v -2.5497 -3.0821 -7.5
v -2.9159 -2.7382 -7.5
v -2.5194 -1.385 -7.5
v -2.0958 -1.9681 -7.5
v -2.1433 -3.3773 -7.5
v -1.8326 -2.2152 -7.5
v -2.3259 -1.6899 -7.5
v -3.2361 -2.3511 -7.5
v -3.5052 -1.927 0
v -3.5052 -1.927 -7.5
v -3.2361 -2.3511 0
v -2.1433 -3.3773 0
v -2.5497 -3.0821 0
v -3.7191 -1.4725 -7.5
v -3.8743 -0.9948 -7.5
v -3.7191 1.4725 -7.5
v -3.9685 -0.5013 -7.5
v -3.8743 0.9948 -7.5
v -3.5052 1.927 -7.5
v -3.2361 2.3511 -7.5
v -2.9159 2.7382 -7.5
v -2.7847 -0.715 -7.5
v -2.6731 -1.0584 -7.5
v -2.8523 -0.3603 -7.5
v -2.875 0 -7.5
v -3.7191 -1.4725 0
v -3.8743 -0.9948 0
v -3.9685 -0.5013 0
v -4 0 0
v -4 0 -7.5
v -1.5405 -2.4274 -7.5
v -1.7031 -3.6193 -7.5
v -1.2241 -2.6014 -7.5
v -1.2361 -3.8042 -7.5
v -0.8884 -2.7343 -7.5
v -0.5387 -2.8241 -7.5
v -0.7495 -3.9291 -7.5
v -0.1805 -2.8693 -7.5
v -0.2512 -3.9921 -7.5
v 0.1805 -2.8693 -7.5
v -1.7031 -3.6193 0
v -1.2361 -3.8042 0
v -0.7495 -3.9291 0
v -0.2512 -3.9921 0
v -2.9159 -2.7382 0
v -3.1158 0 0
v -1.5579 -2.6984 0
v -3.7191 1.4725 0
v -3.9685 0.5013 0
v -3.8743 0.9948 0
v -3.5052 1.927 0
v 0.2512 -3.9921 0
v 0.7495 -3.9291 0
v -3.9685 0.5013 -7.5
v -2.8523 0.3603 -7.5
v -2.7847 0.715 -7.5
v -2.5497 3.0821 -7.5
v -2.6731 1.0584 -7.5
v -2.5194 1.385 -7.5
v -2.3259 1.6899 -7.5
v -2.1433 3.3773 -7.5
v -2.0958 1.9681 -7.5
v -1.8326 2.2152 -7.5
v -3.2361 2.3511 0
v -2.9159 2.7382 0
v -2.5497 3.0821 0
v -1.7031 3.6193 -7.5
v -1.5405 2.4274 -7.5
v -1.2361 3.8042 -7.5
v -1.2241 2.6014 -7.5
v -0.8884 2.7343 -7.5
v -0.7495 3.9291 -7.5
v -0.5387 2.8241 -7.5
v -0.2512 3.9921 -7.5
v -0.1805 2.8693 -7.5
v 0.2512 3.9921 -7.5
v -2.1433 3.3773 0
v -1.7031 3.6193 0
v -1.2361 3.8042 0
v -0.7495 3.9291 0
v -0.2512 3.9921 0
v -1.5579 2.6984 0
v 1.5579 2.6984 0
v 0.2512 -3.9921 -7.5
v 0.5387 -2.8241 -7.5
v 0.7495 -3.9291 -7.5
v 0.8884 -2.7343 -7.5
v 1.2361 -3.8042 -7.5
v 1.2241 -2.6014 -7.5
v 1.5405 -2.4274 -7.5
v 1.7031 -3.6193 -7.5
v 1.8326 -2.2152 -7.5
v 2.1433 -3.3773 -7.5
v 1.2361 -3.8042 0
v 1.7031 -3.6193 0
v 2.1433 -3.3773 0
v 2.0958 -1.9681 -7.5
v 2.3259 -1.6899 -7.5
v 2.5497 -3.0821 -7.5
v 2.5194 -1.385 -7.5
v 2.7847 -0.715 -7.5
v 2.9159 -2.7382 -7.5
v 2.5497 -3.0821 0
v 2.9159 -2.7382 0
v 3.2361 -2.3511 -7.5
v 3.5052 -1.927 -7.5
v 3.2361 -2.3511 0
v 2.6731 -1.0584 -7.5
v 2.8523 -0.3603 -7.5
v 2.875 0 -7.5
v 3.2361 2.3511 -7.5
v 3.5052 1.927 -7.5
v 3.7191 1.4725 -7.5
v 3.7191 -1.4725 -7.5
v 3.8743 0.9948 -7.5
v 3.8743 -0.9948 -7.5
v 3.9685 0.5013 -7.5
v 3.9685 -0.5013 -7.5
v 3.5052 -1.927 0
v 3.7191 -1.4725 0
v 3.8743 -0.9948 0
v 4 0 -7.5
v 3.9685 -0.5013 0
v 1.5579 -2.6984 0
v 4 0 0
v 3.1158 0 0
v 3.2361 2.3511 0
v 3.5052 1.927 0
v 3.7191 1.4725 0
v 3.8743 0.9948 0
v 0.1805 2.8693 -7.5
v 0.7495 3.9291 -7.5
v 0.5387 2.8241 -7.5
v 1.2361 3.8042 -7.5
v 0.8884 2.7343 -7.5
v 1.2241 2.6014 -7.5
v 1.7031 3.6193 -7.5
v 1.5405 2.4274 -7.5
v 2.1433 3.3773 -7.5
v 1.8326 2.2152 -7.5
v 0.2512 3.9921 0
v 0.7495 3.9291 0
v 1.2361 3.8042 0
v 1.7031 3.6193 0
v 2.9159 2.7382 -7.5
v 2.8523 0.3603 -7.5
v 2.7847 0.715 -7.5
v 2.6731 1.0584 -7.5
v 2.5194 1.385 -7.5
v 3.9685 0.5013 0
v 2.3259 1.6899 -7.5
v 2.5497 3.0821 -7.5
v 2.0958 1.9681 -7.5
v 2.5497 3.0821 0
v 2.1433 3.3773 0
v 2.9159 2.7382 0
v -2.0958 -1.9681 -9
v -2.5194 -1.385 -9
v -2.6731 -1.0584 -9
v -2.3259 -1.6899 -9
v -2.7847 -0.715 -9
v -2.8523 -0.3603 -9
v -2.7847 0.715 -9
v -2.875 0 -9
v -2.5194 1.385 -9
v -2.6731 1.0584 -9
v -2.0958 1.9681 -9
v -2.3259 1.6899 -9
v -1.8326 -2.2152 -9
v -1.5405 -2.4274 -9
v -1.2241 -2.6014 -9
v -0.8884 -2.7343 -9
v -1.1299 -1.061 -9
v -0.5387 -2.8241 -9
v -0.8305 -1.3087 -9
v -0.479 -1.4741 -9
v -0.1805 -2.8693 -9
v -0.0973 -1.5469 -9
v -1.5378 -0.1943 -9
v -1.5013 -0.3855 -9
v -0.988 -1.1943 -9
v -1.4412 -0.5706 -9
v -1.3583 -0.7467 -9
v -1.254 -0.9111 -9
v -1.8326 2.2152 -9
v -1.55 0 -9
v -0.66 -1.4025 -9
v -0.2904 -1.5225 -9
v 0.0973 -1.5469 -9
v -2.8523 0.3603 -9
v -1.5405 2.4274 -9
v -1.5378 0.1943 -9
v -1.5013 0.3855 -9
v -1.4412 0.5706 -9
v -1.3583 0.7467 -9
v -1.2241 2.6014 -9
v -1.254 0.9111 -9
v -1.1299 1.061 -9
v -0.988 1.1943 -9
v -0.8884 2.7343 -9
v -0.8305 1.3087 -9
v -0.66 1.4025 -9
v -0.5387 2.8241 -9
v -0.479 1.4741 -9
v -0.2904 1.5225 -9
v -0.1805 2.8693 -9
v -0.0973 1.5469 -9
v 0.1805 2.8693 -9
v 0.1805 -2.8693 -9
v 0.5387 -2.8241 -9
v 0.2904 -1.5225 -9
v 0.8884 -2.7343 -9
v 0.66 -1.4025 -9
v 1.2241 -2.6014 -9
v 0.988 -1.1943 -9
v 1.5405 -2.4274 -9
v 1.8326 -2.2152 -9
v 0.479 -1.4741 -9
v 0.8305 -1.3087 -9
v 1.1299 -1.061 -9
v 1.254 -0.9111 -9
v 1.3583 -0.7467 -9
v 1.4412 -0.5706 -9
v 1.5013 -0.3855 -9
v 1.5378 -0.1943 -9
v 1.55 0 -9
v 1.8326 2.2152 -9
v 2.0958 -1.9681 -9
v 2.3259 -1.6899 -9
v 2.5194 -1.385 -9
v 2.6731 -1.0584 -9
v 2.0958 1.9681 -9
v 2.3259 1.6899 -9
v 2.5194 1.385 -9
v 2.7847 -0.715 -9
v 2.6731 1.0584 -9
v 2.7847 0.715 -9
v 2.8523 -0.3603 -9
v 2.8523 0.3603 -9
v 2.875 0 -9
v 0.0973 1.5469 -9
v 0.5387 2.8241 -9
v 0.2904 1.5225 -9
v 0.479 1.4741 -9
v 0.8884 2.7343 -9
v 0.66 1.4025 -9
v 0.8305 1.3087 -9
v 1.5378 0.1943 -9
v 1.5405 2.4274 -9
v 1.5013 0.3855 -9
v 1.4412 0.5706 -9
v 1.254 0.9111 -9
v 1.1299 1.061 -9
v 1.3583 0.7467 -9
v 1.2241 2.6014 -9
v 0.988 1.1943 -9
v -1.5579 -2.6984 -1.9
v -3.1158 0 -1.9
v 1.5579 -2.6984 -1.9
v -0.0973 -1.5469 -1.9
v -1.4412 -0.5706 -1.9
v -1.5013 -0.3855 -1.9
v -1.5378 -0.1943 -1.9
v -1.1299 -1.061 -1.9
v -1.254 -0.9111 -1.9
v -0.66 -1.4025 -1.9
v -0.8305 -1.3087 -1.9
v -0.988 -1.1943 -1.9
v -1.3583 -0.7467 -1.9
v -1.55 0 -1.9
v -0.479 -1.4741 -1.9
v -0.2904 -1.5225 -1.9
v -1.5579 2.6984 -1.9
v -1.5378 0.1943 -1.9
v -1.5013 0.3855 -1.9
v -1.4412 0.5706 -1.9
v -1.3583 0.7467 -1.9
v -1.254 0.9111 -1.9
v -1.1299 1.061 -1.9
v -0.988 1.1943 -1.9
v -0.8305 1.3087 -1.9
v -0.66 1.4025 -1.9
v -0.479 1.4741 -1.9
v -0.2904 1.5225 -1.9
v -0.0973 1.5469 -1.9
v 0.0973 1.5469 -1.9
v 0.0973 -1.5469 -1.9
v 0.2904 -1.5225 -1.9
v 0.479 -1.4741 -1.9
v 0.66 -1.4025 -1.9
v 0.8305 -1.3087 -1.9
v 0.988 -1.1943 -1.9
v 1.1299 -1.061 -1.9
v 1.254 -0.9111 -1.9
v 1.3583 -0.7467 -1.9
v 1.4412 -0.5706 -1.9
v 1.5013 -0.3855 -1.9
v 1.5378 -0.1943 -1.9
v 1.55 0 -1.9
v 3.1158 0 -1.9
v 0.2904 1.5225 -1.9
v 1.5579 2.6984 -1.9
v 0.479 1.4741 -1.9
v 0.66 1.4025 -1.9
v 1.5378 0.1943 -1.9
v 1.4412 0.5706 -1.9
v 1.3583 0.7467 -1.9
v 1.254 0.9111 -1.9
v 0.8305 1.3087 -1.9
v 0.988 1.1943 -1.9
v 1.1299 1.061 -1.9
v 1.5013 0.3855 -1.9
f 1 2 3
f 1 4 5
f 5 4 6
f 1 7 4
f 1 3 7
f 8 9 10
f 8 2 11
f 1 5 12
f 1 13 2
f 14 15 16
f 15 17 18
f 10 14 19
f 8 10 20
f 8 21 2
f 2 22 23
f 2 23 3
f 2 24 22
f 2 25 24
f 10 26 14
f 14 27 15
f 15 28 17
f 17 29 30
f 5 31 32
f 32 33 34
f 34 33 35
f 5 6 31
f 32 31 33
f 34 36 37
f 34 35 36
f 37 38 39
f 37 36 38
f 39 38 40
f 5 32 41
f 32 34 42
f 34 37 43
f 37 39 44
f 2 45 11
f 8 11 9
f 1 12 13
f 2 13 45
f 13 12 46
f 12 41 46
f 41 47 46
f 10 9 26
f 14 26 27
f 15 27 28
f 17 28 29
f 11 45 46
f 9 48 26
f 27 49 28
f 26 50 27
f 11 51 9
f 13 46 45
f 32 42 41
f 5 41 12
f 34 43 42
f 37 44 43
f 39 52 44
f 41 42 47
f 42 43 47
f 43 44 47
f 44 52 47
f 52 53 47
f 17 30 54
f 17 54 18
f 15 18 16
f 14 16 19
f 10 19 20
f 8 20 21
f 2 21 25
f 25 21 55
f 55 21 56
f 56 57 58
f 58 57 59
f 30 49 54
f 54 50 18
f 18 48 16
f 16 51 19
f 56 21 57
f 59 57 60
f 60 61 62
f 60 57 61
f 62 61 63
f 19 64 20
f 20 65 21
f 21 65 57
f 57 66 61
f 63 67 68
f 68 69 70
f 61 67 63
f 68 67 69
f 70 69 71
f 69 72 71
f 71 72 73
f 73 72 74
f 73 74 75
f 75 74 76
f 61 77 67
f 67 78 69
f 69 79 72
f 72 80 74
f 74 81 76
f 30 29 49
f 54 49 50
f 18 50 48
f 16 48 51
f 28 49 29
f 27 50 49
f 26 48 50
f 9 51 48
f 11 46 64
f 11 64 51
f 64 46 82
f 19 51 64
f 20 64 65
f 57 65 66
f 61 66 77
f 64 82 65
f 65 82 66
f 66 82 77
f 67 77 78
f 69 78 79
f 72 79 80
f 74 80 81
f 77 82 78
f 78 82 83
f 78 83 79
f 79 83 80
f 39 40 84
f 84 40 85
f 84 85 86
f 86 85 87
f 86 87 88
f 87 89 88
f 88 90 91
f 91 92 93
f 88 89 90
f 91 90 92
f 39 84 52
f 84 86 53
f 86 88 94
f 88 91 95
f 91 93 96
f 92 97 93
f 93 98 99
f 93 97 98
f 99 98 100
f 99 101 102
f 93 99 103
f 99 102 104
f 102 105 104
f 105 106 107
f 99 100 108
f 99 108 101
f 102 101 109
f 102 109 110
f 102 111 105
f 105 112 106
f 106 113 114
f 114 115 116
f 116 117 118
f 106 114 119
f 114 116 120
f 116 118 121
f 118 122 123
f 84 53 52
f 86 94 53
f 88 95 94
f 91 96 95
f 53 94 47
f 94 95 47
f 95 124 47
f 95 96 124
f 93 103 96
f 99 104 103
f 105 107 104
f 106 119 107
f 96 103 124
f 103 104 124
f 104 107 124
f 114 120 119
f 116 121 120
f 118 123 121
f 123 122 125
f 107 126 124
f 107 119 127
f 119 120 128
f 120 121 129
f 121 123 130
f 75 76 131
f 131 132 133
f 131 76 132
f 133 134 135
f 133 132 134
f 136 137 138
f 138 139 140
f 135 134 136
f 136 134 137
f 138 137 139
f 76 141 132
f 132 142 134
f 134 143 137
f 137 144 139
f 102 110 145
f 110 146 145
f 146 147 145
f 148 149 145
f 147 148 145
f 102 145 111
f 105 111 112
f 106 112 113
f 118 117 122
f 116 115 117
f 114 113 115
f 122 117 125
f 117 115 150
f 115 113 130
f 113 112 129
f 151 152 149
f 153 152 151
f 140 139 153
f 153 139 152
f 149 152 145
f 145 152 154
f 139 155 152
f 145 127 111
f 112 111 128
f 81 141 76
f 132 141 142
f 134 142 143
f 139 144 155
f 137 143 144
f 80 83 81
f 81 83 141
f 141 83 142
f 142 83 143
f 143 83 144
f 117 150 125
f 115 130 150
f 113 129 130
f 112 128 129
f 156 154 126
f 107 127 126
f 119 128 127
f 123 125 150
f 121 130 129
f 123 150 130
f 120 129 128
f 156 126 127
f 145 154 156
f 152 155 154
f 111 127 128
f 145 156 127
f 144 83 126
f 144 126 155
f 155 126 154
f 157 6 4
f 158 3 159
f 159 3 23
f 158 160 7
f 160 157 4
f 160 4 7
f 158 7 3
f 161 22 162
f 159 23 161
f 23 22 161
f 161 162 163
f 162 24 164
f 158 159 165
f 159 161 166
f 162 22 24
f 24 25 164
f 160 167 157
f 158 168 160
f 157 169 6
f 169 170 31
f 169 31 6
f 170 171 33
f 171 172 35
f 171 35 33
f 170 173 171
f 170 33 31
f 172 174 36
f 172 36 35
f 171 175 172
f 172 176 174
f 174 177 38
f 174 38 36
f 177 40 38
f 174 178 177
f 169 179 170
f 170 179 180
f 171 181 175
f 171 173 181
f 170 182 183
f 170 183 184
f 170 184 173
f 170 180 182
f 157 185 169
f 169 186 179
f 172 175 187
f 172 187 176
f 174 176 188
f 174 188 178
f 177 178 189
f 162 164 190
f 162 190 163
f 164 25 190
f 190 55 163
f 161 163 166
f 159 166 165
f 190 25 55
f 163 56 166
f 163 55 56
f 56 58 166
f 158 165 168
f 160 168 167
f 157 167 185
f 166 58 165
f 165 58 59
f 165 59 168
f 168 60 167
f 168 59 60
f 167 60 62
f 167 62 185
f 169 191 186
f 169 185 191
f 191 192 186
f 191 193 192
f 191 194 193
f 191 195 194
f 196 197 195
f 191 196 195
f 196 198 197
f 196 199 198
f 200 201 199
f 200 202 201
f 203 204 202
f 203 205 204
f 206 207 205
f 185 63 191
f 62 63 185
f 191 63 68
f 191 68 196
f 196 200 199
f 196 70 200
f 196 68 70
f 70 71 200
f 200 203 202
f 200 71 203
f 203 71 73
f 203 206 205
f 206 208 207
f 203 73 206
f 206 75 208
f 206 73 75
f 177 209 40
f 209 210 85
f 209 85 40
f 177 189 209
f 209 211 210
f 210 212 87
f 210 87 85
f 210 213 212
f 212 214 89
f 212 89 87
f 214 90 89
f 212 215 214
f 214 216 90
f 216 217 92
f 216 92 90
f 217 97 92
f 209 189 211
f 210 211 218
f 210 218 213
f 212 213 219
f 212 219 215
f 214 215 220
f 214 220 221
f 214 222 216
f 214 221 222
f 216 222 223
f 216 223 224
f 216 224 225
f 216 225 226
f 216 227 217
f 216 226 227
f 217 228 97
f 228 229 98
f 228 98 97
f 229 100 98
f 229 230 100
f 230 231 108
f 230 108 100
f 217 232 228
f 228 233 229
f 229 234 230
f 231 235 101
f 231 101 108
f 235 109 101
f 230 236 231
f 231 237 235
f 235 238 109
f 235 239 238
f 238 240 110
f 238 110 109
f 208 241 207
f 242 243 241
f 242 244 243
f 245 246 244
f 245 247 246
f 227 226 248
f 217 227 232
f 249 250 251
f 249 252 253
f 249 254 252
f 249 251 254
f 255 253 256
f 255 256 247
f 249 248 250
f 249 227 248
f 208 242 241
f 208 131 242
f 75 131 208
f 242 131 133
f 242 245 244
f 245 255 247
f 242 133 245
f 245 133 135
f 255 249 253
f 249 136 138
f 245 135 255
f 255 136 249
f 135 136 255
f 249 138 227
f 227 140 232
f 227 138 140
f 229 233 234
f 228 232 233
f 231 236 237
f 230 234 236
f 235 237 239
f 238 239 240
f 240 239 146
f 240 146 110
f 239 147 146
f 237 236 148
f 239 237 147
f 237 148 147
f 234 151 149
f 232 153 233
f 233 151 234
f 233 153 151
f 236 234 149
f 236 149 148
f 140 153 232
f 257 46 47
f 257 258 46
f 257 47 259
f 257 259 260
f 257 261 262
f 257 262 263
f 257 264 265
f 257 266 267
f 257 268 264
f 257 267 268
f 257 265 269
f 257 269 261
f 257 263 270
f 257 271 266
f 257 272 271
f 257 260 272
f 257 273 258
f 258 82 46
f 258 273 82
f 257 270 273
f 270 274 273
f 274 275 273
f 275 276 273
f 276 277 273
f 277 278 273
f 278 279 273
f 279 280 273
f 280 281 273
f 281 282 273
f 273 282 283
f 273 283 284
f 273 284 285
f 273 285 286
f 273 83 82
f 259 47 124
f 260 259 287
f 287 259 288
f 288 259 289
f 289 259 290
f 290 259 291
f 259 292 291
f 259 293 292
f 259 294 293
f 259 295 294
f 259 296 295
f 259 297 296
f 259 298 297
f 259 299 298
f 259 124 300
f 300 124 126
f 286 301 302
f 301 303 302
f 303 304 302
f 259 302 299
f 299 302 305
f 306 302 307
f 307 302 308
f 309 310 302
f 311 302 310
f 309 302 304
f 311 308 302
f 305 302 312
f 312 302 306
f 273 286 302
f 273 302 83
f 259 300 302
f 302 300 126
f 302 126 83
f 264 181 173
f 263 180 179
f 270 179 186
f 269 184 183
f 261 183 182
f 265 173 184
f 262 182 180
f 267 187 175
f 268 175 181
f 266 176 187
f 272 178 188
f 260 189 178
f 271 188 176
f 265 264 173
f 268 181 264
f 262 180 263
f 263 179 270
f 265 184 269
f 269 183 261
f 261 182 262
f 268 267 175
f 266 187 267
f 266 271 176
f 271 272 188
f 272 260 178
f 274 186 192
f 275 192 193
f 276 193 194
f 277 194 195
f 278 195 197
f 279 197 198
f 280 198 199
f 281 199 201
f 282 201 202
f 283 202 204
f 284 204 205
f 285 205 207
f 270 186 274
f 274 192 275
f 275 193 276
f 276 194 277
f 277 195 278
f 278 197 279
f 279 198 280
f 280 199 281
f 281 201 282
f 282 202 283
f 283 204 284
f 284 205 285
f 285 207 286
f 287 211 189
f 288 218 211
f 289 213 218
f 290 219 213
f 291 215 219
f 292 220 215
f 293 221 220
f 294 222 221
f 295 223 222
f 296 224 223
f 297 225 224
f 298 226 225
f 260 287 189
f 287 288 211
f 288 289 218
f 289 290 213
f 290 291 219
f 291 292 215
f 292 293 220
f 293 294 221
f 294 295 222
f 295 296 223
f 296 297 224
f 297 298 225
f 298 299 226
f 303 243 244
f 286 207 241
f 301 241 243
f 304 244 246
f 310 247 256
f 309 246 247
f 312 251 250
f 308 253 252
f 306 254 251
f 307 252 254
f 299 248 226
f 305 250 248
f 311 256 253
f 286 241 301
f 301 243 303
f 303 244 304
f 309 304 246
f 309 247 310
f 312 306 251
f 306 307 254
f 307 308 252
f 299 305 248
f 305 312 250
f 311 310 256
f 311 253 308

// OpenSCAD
$fn = 50;

difference() {
	union() {
		translate(v = [0, 0, -7.5]) {
			cylinder(h = 10.5, r = 4.0);
		}
		#translate(v = [0, 0, -9.0]) {
			cylinder(h = 9, r = 2.875);
		}
	}
	union() {
		translate(v = [0, 0, 0]) {
			rotate(a = [0, 0, 0]) {
				difference() {
					union() {
						translate(v = [0, 0, -1.9]) {
							linear_extrude(height = 1.9) {
								polygon(points = [[3.1158, 0.0], [1.5579000000000005, 2.698361953111554], [-1.5578999999999994, 2.6983619531115544], [-3.1158, 3.815754496783323e-16], [-1.5579000000000014, -2.6983619531115535], [1.557899999999998, -2.6983619531115552]]);
							}
						}
					}
					union();
				}
			}
		}
		#cylinder(h = 3, r = 5.0);
		#translate(v = [0, 0, -100.0]) {
			cylinder(h = 200, r = 1.55);
		}
	}
}
